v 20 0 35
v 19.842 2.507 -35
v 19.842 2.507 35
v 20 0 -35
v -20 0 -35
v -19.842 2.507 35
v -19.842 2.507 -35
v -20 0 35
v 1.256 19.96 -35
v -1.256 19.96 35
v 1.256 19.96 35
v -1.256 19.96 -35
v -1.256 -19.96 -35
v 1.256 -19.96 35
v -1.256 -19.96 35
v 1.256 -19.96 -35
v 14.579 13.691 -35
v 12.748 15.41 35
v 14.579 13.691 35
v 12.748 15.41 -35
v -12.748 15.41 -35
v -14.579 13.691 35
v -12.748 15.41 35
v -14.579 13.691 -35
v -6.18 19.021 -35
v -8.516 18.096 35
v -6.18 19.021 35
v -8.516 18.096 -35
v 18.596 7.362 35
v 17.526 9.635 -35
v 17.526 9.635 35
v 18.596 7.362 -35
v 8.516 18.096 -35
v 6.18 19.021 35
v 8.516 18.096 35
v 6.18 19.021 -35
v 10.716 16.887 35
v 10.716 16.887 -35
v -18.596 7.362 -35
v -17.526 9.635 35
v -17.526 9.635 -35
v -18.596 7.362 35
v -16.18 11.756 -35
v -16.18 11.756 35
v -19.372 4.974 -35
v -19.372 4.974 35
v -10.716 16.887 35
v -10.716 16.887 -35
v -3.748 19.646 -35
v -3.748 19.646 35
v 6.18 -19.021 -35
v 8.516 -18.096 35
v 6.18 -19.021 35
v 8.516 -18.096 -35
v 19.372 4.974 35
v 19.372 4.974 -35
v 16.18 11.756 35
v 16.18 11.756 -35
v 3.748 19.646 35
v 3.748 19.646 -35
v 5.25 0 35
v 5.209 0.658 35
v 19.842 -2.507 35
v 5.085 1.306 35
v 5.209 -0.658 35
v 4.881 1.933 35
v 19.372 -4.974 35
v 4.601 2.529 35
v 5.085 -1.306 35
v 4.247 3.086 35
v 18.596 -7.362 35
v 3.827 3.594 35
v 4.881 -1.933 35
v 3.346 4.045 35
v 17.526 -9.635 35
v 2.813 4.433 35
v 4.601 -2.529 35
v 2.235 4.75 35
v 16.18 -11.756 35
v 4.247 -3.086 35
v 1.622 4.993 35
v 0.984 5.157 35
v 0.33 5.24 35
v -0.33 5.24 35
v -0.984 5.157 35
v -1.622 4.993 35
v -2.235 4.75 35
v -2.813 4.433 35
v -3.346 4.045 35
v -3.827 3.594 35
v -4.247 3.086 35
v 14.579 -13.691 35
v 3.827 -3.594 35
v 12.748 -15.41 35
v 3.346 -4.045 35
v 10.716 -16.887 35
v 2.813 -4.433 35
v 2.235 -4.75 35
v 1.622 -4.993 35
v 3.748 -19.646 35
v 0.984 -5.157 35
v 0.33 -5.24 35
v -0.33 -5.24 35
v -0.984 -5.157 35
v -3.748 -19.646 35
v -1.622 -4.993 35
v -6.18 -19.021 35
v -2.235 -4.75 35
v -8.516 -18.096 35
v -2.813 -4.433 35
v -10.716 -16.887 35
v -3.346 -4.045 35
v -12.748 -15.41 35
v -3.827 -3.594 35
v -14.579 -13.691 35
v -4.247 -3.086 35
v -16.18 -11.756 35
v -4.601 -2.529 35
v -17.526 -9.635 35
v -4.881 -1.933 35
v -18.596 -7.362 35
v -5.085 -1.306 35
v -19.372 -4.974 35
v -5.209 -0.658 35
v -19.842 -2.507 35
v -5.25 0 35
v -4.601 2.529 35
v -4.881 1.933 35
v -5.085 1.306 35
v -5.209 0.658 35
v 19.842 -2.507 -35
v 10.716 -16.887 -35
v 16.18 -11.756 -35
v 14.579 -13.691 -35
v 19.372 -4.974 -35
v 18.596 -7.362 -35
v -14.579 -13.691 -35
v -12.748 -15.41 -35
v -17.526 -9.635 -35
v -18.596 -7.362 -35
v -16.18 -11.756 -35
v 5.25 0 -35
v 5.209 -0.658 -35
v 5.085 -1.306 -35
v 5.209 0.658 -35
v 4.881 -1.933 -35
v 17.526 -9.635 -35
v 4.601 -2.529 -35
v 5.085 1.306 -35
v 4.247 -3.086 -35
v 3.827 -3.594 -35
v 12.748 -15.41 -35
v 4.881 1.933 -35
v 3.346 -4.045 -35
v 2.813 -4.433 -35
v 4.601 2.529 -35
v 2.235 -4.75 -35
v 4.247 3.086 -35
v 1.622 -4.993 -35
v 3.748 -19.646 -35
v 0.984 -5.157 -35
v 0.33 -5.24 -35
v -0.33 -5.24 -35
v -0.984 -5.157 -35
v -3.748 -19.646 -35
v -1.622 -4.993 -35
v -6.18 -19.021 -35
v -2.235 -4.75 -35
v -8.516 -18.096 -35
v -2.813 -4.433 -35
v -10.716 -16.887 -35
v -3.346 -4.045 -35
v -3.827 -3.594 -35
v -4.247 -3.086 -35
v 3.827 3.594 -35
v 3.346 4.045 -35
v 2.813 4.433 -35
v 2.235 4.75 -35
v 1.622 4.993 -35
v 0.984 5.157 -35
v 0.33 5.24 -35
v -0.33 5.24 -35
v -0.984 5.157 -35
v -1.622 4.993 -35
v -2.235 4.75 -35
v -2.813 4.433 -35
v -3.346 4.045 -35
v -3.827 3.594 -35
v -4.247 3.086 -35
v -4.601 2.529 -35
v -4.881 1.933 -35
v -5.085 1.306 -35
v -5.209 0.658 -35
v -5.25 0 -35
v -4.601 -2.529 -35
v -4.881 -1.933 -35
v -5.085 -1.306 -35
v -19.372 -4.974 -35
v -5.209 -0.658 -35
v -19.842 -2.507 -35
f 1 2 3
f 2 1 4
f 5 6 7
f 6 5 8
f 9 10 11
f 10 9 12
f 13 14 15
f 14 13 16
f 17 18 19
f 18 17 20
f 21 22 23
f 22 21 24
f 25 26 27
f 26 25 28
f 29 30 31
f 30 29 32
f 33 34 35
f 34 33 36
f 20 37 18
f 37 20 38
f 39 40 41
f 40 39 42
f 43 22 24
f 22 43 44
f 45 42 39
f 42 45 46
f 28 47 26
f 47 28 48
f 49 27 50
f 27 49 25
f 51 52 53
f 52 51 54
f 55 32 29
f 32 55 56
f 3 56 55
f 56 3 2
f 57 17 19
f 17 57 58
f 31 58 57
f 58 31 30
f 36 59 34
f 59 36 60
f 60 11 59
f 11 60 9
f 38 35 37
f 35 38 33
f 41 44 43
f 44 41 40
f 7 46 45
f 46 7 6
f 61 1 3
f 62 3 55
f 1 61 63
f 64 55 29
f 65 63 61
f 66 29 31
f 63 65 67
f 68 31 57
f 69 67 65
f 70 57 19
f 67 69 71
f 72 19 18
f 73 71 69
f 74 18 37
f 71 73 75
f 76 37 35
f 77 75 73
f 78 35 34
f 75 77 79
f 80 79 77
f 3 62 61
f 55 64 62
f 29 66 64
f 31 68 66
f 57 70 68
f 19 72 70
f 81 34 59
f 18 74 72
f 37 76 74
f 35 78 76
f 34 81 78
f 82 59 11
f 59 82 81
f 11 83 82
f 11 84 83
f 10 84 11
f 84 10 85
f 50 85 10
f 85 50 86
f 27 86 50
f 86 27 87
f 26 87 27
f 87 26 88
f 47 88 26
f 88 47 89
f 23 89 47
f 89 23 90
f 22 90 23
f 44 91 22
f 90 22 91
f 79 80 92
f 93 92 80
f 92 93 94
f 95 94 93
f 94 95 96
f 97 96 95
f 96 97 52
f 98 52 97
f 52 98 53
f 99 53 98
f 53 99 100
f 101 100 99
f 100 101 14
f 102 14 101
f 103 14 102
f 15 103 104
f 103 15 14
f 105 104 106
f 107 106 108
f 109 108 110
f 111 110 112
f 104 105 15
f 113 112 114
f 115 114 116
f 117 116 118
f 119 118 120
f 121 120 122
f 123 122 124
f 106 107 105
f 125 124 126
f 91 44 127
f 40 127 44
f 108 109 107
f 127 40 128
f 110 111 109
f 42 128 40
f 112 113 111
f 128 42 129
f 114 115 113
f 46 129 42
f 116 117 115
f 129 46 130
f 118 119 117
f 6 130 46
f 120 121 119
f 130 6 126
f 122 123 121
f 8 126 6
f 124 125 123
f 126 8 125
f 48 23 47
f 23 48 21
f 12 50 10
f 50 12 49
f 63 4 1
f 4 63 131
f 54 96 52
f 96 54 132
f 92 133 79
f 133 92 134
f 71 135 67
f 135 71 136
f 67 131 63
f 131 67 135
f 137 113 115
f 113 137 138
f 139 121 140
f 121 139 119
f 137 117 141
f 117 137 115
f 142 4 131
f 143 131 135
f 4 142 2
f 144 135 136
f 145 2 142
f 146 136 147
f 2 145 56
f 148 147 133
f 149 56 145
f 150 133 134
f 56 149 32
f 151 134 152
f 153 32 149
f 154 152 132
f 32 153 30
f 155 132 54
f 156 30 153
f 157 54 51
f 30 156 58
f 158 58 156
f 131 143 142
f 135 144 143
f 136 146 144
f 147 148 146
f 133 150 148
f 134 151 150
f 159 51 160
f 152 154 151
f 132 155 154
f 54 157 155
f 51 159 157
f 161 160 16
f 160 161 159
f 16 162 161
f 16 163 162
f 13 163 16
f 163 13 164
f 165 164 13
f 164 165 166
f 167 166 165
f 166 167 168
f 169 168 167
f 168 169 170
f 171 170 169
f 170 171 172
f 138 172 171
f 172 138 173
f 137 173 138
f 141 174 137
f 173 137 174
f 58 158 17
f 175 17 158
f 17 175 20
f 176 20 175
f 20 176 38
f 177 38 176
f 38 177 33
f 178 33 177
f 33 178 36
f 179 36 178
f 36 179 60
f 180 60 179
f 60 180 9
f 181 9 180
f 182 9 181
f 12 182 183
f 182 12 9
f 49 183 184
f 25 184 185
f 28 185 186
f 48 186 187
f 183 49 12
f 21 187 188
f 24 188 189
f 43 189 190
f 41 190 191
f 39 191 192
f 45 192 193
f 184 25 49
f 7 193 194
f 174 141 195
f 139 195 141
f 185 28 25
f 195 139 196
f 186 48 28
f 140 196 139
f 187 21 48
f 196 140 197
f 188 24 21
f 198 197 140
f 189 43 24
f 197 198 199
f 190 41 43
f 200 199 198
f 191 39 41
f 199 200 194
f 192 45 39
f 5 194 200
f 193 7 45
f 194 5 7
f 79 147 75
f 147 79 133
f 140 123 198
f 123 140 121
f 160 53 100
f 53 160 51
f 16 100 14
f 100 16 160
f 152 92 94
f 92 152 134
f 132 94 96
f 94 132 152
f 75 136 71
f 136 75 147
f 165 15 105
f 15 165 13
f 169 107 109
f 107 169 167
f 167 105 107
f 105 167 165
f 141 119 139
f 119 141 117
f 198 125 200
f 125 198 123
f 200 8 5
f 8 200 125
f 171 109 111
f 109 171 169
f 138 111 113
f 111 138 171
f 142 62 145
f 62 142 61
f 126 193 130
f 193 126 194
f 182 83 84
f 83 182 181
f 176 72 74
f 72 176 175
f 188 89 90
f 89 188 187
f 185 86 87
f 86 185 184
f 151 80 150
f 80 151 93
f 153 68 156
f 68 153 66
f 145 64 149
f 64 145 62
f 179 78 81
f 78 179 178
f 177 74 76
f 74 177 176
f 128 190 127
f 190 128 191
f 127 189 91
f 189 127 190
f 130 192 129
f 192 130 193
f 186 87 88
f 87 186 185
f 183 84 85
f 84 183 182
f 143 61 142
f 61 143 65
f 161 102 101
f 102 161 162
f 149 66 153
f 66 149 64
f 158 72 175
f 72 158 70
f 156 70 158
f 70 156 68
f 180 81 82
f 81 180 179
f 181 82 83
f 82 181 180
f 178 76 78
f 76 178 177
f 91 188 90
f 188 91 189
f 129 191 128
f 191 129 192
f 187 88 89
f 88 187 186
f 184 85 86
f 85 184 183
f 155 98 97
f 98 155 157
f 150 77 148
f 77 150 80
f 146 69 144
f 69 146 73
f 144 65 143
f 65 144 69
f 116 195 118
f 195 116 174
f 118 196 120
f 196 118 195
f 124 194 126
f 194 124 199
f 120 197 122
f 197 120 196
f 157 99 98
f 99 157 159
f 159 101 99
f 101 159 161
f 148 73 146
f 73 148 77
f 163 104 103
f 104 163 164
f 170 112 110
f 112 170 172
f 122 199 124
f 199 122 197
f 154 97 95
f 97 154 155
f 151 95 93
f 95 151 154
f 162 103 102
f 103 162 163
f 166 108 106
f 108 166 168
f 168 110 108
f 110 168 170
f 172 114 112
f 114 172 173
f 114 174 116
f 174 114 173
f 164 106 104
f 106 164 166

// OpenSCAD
$fn = 50;


difference() {
	union() {
		translate(v = [0, 0, -35.0000000000]) {
			cylinder(h = 70, r = 20.0000000000);
		}
	}
	union() {
		translate(v = [0, 0, -100.0000000000]) {
			cylinder(h = 200, r = 5.2500000000);
		}
	}
}
